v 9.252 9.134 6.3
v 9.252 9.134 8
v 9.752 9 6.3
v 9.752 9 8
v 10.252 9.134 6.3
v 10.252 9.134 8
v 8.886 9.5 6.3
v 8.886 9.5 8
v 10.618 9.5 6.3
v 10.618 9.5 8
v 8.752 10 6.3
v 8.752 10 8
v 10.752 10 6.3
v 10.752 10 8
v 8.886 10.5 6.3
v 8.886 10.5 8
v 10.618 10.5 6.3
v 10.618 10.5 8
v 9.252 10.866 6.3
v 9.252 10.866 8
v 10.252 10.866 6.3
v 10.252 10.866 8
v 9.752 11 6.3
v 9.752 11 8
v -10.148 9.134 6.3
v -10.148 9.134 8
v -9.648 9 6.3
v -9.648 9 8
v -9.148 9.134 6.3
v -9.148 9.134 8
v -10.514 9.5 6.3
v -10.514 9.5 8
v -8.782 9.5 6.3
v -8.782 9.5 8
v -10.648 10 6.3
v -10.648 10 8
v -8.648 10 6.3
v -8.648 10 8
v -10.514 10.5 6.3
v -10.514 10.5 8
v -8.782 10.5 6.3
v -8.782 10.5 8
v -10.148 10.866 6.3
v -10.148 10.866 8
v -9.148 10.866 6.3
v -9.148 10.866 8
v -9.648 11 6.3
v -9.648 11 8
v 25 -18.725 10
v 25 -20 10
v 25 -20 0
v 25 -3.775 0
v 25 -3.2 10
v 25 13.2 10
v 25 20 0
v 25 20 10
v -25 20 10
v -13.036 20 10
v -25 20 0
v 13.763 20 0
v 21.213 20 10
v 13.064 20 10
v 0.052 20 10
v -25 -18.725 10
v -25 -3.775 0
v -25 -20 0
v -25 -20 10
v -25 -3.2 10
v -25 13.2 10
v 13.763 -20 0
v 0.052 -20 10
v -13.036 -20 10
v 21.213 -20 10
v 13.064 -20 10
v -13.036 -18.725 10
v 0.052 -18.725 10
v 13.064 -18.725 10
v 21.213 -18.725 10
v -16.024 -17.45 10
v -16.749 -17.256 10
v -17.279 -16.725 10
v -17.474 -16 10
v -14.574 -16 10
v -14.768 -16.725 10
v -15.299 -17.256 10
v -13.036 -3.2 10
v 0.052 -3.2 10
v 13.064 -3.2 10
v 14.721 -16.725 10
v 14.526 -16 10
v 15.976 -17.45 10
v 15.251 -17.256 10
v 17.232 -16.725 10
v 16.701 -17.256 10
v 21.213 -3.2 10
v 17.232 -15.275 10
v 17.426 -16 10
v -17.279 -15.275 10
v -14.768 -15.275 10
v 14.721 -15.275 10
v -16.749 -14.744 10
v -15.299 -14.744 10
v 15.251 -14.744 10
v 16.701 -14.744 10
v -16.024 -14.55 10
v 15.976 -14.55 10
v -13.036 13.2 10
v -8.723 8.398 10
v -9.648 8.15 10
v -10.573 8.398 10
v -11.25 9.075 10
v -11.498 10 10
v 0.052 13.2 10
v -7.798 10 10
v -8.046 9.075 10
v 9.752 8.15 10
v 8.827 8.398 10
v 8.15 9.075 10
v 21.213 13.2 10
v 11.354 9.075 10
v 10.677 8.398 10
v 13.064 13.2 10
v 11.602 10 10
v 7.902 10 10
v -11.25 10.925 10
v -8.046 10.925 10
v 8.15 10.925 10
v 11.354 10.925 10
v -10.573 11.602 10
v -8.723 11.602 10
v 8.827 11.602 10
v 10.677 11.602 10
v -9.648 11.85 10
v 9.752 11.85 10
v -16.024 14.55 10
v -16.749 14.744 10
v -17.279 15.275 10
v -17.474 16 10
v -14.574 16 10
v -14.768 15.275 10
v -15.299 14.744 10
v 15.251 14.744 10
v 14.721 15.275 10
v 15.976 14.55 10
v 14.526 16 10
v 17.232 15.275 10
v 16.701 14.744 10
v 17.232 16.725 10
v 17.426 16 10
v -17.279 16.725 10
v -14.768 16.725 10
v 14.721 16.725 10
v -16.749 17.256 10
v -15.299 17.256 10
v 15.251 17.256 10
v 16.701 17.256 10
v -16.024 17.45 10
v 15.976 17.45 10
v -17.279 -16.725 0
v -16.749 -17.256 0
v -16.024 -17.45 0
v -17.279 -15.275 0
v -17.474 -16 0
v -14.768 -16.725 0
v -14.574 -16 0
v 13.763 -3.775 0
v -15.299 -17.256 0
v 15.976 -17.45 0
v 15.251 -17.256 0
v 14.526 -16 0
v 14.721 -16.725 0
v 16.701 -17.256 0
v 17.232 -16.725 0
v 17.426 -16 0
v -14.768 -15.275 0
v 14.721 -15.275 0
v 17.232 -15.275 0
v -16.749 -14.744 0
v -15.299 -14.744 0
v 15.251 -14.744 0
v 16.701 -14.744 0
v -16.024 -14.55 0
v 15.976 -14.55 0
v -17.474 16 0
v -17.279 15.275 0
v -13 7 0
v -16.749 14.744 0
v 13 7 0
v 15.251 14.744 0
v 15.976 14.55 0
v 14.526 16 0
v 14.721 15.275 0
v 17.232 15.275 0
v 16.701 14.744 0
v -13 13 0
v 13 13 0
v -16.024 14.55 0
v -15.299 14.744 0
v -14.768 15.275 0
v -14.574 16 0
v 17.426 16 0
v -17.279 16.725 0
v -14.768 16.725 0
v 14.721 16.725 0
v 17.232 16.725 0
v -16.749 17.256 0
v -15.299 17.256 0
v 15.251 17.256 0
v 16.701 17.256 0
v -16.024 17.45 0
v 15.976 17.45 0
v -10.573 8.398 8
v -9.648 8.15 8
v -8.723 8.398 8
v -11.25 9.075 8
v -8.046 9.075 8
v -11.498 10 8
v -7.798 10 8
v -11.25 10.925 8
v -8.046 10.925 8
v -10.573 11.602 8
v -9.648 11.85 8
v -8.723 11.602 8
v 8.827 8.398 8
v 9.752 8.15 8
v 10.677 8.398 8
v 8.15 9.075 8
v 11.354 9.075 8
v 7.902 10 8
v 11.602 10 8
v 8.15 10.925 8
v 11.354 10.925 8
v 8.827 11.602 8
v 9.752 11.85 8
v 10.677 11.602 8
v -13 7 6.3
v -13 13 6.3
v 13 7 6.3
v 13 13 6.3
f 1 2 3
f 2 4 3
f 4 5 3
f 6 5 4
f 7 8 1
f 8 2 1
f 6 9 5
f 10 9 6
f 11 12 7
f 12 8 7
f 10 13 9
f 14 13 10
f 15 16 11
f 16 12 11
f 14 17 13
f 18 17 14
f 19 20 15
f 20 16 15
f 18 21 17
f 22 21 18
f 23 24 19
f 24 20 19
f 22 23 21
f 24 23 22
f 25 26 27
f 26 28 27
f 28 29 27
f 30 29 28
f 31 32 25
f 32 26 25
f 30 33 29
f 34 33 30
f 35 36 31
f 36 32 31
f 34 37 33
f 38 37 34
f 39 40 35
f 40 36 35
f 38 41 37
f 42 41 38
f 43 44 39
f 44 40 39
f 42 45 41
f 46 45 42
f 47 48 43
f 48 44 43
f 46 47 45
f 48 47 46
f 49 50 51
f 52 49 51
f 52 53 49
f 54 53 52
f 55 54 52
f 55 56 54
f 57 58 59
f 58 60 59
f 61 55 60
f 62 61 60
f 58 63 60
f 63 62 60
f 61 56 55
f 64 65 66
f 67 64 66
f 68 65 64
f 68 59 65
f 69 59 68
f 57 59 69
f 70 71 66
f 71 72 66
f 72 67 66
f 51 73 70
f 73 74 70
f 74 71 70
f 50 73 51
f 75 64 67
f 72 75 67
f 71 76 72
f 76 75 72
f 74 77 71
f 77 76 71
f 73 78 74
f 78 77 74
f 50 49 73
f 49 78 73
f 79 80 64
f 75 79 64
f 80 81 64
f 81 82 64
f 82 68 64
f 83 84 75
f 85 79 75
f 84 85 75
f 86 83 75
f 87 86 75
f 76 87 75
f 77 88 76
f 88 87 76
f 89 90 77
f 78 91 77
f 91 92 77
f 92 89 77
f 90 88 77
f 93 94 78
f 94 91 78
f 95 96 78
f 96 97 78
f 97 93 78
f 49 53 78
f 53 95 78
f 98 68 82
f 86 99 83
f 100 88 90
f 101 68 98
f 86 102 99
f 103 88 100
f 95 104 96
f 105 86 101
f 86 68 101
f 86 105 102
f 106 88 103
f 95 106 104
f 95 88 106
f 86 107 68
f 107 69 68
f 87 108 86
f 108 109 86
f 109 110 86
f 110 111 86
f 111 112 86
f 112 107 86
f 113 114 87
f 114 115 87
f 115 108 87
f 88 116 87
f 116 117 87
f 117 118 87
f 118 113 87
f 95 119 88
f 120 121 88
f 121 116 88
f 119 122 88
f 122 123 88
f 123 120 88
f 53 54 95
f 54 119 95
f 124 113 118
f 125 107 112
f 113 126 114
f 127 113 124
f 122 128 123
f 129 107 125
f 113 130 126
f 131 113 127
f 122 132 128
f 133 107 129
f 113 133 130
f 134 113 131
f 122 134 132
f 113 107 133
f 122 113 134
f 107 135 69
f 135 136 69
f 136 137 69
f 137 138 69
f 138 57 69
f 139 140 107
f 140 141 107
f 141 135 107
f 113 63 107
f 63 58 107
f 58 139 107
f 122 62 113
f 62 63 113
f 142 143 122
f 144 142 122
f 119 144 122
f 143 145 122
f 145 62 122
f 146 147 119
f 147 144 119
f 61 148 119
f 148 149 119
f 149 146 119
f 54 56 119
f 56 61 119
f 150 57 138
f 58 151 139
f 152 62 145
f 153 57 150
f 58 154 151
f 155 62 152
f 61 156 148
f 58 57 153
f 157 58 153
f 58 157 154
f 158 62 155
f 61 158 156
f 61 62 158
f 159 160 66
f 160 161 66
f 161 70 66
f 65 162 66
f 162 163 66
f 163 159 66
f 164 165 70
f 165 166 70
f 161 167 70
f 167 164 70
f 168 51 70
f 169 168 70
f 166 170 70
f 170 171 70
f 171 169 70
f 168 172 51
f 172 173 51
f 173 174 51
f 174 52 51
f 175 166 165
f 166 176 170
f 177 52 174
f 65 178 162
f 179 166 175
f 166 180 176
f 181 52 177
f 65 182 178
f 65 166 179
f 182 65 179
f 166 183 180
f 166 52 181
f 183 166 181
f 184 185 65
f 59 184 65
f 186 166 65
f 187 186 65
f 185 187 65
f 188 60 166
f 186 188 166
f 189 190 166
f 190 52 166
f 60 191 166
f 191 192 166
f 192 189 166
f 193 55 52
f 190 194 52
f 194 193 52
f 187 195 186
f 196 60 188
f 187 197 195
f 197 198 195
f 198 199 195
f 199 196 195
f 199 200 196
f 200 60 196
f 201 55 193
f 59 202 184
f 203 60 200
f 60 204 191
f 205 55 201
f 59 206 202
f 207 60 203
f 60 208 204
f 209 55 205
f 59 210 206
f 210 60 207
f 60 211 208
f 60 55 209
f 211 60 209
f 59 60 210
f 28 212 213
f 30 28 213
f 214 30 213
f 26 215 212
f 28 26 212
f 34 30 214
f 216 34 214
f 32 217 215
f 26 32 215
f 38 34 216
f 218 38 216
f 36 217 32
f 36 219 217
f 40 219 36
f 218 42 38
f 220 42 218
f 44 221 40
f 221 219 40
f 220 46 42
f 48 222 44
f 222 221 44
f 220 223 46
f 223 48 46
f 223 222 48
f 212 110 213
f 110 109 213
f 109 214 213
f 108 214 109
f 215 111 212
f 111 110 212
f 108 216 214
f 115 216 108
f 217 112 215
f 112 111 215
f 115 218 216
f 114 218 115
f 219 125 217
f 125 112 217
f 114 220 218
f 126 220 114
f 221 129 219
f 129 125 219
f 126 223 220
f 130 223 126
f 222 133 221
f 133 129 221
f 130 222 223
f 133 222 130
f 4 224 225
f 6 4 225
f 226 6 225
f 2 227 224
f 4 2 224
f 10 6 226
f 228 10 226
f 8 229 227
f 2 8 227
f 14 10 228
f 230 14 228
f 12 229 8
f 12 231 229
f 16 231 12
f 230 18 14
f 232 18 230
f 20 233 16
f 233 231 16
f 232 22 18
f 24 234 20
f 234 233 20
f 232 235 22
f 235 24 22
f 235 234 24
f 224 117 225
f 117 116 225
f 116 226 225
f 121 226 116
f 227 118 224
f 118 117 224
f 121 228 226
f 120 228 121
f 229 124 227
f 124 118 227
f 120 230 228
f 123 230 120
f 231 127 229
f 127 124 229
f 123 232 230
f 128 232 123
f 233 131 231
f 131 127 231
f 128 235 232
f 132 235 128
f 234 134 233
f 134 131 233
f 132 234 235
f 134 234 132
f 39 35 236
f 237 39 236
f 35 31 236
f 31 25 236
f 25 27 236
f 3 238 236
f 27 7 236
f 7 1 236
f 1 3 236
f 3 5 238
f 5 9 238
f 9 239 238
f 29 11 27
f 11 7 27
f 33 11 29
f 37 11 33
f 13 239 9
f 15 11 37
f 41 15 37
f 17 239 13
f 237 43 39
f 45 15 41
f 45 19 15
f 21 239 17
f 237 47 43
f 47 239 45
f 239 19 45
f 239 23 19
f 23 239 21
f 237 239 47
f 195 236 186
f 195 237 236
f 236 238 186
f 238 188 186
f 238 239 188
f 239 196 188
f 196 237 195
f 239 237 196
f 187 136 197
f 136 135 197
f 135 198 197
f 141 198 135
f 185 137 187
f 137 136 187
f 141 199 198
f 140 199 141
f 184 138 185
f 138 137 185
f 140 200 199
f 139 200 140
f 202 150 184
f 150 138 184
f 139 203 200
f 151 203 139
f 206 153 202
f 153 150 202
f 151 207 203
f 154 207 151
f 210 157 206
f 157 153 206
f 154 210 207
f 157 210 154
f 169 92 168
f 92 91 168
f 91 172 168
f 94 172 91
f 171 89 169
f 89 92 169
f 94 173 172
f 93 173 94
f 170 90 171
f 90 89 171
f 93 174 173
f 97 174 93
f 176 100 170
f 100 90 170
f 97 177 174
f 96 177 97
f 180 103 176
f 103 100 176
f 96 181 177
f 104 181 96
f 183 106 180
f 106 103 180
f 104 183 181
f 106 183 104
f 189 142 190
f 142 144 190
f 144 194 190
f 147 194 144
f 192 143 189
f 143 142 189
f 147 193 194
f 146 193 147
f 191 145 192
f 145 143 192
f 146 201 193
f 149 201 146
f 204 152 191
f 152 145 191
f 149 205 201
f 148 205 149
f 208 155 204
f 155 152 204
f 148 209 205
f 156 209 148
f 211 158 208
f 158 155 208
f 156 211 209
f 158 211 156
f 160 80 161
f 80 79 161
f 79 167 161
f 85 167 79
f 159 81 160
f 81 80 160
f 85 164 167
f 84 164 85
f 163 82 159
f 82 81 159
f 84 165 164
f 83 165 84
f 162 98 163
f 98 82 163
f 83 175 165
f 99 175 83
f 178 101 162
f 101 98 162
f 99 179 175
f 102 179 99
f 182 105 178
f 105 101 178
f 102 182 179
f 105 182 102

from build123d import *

# Parameters (mm, degrees)
SKETCH_1_W          = 50
SKETCH_1_H          = 40
EXTRUDE_1_DEPTH     = 10
SKETCH_2_R          = 1
CUT_EXTRUDE_1_DEPTH = 34.541019662
SKETCH_10_R         = 1.85
CUT_EXTRUDE_6_DEPTH = 2
SKETCH_11_W         = 26
SKETCH_11_H         = 6
CUT_EXTRUDE_7_DEPTH = 6.3
SKETCH_13_R         = 1.45
CUT_EXTRUDE_8_DEPTH = 10


with BuildPart() as part:
    # 草图1 → 凸台-拉伸1 (new body)
    with BuildSketch(Plane.XY):
        Rectangle(SKETCH_1_W, SKETCH_1_H)
    extrude(amount=EXTRUDE_1_DEPTH)

    # 草图2 → 切除-拉伸1 (cut, through all)
    with BuildSketch(Plane.XY.offset(10)):
        with Locations((-9.648315915, 10)):
            Circle(SKETCH_2_R)
        with Locations((9.751684085, 10)):
            Circle(SKETCH_2_R)
    extrude(amount=-CUT_EXTRUDE_1_DEPTH, mode=Mode.SUBTRACT)

    # 草图10 → 切除-拉伸6 (cut)
    with BuildSketch(Plane.XY.offset(10)):
        with Locations((-9.648315915, 10)):
            Circle(SKETCH_10_R)
        with Locations((9.751684085, 10)):
            Circle(SKETCH_10_R)
    extrude(amount=-CUT_EXTRUDE_6_DEPTH, mode=Mode.SUBTRACT)

    # 草图11 → 切除-拉伸7 (cut)
    with BuildSketch(Plane(origin=(0, 0, 0), x_dir=(-1, 0, 0), z_dir=(0, 0, -1))):
        with Locations((0, 10)):
            Rectangle(SKETCH_11_W, SKETCH_11_H)
    extrude(amount=-CUT_EXTRUDE_7_DEPTH, mode=Mode.SUBTRACT)

    # 草图13 → 切除-拉伸8 (cut)
    with BuildSketch(Plane.XY.offset(10)):
        with Locations((-16.023529812, 16)):
            Circle(SKETCH_13_R)
        with Locations((-16.023529812, -16)):
            Circle(SKETCH_13_R)
        with Locations((15.976470188, 16)):
            Circle(SKETCH_13_R)
        with Locations((15.976470188, -16)):
            Circle(SKETCH_13_R)
    extrude(amount=-CUT_EXTRUDE_8_DEPTH, mode=Mode.SUBTRACT)


solid = part.part
